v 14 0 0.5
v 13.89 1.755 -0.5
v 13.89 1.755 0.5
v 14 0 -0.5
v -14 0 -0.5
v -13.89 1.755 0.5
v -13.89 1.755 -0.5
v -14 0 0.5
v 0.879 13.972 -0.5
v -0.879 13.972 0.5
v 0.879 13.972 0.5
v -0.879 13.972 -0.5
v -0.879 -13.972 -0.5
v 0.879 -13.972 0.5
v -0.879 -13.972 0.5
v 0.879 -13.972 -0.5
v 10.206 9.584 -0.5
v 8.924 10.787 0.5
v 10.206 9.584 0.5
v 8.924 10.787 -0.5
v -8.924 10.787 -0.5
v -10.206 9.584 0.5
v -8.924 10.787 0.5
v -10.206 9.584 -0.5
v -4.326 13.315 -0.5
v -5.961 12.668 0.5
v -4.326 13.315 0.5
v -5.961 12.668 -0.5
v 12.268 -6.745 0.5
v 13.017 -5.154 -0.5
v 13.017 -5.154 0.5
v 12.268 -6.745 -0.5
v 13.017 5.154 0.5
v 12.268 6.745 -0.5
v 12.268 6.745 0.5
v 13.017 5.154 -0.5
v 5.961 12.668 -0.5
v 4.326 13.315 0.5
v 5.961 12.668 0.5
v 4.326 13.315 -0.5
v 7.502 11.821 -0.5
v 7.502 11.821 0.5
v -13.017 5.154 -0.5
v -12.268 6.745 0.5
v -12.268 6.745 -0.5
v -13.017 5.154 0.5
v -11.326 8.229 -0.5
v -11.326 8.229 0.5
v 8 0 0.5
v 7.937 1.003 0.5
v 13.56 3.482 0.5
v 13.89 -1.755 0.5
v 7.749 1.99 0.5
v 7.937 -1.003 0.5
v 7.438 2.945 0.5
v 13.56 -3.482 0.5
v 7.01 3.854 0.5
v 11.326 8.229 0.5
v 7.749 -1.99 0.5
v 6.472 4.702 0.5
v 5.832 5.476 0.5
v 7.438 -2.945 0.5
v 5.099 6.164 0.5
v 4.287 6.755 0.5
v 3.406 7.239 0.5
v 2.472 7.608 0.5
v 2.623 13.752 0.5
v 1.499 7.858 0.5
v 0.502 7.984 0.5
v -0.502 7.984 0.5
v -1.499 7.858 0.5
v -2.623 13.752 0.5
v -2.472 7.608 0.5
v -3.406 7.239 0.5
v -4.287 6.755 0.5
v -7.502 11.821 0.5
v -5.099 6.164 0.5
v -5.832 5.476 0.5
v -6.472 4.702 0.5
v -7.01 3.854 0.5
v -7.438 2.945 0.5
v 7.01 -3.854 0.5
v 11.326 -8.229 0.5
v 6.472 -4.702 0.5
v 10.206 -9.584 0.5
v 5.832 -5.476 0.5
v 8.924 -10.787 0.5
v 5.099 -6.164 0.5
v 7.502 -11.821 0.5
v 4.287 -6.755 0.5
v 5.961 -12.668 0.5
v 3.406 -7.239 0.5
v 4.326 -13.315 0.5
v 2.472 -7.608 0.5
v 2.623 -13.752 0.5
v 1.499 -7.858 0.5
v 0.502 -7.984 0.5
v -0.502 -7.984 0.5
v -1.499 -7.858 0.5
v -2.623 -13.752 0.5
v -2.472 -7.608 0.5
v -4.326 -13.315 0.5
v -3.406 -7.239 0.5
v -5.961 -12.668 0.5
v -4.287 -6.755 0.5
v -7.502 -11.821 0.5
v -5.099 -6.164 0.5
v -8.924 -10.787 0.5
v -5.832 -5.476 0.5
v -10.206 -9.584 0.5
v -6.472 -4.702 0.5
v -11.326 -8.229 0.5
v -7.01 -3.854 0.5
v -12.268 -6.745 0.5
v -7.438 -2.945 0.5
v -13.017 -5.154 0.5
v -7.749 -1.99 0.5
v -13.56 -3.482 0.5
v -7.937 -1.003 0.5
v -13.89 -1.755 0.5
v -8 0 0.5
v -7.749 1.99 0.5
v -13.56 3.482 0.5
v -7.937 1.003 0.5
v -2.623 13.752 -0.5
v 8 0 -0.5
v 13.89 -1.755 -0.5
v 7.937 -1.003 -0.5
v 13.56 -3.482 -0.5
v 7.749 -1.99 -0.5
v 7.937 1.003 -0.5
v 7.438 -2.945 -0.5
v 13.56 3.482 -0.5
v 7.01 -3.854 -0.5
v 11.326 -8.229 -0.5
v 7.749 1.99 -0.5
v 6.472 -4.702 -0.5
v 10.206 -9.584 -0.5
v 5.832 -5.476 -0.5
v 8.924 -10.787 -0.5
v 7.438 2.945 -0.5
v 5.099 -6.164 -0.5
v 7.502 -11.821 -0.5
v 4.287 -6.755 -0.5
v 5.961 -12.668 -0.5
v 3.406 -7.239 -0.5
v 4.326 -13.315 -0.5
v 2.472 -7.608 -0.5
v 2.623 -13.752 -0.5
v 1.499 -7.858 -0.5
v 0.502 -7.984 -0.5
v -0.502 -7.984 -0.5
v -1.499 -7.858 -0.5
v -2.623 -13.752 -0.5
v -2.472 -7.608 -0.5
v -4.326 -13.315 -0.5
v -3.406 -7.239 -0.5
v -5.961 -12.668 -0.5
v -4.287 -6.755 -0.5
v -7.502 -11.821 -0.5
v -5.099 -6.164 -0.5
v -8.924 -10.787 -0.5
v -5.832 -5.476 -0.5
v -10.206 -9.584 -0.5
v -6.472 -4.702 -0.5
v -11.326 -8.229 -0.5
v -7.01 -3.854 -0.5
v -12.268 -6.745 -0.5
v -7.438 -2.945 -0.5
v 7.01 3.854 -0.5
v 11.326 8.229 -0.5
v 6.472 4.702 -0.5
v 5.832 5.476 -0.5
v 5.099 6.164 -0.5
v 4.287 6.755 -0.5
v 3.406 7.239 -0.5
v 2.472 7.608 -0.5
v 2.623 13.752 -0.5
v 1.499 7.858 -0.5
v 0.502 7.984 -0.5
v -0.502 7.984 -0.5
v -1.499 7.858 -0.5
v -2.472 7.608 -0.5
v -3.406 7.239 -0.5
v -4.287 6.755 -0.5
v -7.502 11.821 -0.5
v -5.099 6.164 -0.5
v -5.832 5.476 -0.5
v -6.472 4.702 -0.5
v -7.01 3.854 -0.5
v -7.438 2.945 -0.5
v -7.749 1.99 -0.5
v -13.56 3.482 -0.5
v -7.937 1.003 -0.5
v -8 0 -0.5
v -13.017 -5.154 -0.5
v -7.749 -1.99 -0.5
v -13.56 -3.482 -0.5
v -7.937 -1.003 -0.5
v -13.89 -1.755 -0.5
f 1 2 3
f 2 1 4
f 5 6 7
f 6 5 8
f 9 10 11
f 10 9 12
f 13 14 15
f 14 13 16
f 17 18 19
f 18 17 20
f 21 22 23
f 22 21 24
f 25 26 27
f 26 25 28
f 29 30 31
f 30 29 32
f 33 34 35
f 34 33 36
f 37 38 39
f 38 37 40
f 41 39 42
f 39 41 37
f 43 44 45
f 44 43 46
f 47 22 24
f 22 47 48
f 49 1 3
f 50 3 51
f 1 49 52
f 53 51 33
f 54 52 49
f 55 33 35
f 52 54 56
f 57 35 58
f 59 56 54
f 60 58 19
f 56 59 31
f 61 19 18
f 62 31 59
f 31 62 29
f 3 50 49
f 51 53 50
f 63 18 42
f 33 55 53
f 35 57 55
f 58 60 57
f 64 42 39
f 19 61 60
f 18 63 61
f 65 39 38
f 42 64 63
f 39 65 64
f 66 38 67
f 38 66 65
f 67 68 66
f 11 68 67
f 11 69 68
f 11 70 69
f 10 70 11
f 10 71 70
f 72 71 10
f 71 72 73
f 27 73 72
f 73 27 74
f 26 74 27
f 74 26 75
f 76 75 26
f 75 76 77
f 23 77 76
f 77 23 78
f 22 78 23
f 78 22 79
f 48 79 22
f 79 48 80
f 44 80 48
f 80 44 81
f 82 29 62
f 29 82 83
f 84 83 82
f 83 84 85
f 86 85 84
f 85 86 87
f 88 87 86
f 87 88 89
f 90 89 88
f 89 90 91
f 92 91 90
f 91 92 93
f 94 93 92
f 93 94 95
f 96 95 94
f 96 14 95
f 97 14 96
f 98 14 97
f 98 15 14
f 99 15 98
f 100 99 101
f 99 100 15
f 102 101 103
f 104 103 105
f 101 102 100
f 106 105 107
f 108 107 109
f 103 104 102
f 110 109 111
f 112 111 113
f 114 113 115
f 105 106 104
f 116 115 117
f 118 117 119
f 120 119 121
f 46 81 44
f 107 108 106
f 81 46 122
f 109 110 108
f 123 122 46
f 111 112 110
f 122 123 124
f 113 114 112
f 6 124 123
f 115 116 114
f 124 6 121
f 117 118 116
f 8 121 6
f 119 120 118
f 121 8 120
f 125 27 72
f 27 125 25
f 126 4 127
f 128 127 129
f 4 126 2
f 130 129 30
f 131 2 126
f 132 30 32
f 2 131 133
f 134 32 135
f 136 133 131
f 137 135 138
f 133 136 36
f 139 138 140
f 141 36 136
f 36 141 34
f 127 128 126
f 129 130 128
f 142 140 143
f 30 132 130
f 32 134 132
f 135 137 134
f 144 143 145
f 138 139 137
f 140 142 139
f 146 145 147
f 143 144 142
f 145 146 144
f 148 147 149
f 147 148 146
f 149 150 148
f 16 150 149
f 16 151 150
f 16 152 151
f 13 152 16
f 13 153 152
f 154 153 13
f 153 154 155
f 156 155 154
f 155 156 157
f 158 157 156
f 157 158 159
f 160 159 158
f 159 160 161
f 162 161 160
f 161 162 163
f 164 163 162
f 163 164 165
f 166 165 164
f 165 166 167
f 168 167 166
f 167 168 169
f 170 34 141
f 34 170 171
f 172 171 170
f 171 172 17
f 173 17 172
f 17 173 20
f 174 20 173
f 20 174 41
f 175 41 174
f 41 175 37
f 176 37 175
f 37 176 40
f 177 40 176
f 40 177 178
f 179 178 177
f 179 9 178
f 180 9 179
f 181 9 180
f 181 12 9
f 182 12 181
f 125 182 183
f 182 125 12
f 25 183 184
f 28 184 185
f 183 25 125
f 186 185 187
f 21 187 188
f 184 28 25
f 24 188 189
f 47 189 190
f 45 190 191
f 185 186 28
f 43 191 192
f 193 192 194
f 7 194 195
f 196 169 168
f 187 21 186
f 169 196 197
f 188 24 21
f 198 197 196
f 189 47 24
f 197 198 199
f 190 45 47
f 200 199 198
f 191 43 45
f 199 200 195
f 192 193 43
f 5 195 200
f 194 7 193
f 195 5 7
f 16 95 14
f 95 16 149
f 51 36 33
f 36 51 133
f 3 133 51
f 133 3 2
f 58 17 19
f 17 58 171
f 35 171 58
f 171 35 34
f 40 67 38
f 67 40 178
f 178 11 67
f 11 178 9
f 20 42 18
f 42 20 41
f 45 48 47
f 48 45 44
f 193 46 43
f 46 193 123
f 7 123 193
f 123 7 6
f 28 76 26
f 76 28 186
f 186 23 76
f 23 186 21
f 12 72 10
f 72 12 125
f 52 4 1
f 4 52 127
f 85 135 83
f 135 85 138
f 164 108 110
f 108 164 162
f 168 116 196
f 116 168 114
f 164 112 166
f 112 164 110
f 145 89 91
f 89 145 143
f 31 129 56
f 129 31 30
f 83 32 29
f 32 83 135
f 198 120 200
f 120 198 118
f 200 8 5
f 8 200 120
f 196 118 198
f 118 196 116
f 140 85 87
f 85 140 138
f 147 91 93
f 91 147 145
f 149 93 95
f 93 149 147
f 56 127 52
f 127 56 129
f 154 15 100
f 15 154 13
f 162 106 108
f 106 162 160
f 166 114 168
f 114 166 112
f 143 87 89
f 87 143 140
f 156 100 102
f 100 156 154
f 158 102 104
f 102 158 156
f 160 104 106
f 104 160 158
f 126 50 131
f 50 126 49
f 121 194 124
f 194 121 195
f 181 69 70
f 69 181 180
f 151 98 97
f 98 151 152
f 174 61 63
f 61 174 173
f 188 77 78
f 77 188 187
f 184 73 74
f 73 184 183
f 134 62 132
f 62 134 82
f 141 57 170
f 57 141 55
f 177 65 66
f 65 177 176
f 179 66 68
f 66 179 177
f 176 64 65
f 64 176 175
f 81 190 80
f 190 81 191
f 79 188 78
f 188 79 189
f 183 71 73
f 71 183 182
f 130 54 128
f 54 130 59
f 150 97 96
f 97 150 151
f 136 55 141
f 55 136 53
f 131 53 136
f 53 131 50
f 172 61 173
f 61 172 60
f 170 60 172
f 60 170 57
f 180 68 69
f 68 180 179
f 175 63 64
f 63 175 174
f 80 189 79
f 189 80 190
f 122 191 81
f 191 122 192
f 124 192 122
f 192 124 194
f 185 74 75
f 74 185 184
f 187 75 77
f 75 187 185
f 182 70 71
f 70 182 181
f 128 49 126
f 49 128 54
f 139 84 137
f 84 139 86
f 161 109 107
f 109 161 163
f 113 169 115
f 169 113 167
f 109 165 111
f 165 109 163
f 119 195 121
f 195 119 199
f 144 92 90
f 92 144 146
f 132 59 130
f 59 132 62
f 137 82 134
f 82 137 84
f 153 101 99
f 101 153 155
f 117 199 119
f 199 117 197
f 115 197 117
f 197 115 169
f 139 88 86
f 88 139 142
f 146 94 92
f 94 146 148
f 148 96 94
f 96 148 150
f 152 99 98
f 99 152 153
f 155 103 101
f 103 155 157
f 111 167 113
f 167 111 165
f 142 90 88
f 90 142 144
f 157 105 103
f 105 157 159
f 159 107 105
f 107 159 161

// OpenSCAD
$fn = 50;


difference() {
	union() {
		translate(v = [0, 0, -0.5000000000]) {
			cylinder(h = 1, r = 14.0000000000);
		}
	}
	union() {
		translate(v = [0, 0, -100.0000000000]) {
			cylinder(h = 200, r = 8);
		}
	}
}
